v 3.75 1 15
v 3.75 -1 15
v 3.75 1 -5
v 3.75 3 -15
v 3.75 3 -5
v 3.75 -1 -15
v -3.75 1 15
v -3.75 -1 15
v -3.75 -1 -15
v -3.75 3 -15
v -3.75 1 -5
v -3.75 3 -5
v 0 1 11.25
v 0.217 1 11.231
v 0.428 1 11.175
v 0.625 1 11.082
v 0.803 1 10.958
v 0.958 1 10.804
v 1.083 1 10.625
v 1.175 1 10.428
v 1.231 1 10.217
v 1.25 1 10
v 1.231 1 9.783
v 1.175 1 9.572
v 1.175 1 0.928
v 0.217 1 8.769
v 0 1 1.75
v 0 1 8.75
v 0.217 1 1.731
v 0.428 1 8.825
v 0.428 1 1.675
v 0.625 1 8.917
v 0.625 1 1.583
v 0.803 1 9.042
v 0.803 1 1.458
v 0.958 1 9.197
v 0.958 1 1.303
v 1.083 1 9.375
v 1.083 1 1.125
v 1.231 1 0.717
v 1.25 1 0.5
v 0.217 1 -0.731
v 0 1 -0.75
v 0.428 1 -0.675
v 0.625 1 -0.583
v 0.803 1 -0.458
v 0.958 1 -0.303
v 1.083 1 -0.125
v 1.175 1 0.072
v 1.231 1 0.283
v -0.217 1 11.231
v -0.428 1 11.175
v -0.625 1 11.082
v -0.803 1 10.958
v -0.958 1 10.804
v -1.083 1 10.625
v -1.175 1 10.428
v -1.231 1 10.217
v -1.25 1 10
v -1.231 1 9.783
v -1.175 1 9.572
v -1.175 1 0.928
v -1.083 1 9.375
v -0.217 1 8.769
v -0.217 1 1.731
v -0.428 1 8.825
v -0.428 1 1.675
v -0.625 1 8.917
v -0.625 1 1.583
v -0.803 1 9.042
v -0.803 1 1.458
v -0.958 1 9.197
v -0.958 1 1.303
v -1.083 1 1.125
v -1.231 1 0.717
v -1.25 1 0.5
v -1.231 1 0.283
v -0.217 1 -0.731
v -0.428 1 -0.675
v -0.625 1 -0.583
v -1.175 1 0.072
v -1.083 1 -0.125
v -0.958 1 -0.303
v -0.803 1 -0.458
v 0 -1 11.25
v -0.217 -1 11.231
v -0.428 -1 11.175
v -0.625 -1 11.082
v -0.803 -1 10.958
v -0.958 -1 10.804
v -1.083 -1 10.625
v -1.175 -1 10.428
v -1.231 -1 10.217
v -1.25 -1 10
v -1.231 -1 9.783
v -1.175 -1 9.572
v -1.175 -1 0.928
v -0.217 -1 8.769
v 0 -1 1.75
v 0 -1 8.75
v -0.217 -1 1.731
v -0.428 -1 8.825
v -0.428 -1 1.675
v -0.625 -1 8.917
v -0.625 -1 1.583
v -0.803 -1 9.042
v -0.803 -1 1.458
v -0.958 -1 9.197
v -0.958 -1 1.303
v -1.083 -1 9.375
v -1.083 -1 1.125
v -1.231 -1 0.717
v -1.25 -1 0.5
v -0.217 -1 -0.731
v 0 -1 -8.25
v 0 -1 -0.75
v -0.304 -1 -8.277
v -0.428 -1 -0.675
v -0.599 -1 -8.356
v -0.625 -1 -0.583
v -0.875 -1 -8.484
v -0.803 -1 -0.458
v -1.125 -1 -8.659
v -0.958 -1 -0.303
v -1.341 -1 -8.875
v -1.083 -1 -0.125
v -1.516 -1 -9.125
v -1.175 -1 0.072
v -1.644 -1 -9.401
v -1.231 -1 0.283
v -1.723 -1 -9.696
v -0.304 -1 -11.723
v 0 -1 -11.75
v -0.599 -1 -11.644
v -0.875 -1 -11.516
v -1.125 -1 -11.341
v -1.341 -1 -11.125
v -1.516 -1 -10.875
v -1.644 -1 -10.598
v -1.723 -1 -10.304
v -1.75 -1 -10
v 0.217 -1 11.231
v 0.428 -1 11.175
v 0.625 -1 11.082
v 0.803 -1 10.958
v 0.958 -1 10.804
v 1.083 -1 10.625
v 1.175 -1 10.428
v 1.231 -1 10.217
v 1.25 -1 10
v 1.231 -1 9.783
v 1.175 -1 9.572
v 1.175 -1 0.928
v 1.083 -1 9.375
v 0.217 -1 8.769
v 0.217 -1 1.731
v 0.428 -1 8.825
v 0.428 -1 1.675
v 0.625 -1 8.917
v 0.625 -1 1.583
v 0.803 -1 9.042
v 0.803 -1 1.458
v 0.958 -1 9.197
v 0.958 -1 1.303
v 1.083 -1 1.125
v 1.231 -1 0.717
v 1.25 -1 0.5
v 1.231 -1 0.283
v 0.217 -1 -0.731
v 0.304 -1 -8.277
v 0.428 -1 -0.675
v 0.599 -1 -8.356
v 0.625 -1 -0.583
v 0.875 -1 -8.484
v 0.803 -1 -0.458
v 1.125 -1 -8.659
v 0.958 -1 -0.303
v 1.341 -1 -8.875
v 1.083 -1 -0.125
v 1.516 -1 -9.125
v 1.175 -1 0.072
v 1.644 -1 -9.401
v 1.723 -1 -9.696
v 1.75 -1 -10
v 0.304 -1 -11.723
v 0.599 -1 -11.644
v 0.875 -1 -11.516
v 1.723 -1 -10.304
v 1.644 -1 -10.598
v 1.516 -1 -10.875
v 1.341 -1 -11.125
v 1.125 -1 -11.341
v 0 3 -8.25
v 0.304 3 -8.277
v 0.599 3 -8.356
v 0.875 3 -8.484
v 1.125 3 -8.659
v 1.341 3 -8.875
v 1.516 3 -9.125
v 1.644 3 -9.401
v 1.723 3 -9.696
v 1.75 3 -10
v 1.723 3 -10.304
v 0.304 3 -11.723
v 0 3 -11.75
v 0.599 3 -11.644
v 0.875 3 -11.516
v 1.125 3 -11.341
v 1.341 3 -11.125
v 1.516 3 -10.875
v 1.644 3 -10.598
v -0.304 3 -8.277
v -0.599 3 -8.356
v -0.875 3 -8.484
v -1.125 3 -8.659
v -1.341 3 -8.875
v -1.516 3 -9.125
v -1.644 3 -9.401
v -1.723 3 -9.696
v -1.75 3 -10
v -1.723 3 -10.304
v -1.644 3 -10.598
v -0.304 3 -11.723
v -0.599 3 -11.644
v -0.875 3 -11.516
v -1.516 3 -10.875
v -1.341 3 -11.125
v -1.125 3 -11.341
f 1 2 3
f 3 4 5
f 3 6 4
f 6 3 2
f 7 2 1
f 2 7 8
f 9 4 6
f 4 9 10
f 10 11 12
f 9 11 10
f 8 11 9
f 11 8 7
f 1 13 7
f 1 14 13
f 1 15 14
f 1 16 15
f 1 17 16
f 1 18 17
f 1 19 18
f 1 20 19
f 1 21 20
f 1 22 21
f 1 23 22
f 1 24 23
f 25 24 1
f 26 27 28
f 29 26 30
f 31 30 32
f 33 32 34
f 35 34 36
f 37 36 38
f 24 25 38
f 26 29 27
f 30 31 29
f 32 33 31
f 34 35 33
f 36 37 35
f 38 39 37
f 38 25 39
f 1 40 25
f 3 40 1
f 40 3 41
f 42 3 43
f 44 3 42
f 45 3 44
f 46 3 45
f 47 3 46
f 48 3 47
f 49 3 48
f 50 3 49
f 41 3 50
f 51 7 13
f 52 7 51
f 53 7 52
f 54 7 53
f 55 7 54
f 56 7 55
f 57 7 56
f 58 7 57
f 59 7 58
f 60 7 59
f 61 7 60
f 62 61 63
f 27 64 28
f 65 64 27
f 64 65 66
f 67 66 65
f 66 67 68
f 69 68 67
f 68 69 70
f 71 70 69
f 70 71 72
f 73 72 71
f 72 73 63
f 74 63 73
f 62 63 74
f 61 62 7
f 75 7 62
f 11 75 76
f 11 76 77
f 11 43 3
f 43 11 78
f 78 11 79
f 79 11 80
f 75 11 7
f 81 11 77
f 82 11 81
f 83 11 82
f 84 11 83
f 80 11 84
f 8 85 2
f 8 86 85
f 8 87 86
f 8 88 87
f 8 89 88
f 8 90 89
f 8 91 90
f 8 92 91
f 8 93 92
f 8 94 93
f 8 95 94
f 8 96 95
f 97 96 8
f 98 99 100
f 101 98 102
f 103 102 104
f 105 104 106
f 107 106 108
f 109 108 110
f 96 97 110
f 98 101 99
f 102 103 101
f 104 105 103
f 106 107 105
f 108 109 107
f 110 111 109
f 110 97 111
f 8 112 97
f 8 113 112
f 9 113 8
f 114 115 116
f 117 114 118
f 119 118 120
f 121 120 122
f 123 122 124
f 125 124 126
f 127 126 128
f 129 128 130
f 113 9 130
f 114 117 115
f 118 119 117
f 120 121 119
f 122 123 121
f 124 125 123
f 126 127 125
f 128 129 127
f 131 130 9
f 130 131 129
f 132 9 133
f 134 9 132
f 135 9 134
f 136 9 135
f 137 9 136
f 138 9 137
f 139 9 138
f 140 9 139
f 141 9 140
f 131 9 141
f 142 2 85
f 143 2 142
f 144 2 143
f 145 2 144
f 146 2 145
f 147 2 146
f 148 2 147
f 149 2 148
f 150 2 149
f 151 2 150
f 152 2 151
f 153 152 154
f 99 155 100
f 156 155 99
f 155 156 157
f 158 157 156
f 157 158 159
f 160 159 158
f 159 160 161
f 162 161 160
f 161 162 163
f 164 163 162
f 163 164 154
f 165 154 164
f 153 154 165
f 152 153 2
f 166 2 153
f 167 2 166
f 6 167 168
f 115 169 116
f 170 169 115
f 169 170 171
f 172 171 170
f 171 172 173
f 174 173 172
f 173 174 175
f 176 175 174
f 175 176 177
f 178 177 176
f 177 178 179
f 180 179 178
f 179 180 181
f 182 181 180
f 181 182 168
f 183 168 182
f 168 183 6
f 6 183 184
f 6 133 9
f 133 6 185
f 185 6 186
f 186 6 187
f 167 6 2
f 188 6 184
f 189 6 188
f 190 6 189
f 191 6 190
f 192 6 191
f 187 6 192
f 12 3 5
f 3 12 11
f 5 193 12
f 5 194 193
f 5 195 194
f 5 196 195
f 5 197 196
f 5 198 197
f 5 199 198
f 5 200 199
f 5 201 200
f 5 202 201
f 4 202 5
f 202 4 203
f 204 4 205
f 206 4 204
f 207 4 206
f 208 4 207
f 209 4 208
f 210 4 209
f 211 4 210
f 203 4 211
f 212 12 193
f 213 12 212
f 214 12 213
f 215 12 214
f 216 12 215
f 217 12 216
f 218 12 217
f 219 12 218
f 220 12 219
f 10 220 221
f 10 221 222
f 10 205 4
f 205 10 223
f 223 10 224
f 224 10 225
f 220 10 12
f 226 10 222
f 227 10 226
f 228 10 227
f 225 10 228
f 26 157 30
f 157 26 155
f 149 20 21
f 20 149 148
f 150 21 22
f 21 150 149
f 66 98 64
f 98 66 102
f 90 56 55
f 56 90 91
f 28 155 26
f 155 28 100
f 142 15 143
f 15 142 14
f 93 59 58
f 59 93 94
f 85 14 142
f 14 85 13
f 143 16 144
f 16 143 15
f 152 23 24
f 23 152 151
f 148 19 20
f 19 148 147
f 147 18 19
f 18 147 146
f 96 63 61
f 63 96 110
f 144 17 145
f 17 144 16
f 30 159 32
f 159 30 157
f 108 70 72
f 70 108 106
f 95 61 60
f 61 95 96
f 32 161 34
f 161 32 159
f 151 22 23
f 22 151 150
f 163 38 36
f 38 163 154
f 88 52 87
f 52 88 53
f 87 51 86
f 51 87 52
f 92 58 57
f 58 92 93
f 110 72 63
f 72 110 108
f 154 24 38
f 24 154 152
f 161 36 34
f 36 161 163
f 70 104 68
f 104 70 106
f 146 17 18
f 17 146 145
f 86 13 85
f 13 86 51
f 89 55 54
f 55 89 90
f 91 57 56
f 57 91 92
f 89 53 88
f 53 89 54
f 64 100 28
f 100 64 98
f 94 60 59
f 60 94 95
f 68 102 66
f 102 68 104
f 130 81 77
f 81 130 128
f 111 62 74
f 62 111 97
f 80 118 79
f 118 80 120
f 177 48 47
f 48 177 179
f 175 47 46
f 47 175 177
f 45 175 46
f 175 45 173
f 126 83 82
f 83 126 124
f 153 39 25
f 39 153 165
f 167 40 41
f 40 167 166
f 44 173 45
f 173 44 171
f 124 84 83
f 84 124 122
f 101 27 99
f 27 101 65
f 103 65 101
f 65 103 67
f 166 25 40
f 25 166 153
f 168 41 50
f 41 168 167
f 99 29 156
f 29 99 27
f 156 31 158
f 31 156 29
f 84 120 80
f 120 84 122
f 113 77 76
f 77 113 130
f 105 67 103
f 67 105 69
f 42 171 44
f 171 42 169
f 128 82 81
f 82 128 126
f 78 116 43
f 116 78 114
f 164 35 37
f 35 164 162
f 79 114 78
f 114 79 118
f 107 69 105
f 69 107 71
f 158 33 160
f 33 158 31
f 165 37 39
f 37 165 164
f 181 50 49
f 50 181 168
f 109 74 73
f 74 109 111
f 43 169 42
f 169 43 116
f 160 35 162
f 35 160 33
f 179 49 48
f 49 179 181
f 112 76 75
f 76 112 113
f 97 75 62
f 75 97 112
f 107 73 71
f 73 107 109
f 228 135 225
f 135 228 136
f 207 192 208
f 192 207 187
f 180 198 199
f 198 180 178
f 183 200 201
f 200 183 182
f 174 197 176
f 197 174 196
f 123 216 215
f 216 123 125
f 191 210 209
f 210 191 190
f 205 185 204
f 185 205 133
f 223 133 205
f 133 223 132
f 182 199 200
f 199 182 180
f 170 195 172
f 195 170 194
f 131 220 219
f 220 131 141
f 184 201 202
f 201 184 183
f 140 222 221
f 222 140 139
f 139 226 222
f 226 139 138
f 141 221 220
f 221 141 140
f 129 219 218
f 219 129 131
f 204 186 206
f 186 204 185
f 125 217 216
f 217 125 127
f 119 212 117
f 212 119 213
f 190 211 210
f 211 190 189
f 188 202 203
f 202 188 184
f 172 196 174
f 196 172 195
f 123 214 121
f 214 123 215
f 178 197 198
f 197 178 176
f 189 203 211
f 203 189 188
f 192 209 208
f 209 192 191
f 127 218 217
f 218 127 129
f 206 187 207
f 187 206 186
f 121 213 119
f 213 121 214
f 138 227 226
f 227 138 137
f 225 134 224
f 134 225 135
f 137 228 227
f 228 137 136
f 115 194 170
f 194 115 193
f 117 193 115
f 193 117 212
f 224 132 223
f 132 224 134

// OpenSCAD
/*
 * Machdyne PNP
 * Copyright (c) 2023 Lone Dynamics Corporation. All rights reserved.
 *
 * Limit Switch Mount
 *
 */
 
$fn = 36;
 
lsm();
 
module lsm() {
	
	difference() {
		
		union() {
			
			cube([7.5,2,30], center=true);
			translate([0,2,-10]) cube([7.5,2,10], center=true);
			
		}
		

		rotate([90,0,0]) translate([0,10,0]) cylinder(d=2.5, h=200, center=true);
		rotate([90,0,0]) translate([0,10-9.5,0]) cylinder(d=2.5, h=200, center=true);
		
		rotate([90,0,0]) translate([0,-10,0]) cylinder(d=3.5, h=200, center=true);

		
	}
	
}
